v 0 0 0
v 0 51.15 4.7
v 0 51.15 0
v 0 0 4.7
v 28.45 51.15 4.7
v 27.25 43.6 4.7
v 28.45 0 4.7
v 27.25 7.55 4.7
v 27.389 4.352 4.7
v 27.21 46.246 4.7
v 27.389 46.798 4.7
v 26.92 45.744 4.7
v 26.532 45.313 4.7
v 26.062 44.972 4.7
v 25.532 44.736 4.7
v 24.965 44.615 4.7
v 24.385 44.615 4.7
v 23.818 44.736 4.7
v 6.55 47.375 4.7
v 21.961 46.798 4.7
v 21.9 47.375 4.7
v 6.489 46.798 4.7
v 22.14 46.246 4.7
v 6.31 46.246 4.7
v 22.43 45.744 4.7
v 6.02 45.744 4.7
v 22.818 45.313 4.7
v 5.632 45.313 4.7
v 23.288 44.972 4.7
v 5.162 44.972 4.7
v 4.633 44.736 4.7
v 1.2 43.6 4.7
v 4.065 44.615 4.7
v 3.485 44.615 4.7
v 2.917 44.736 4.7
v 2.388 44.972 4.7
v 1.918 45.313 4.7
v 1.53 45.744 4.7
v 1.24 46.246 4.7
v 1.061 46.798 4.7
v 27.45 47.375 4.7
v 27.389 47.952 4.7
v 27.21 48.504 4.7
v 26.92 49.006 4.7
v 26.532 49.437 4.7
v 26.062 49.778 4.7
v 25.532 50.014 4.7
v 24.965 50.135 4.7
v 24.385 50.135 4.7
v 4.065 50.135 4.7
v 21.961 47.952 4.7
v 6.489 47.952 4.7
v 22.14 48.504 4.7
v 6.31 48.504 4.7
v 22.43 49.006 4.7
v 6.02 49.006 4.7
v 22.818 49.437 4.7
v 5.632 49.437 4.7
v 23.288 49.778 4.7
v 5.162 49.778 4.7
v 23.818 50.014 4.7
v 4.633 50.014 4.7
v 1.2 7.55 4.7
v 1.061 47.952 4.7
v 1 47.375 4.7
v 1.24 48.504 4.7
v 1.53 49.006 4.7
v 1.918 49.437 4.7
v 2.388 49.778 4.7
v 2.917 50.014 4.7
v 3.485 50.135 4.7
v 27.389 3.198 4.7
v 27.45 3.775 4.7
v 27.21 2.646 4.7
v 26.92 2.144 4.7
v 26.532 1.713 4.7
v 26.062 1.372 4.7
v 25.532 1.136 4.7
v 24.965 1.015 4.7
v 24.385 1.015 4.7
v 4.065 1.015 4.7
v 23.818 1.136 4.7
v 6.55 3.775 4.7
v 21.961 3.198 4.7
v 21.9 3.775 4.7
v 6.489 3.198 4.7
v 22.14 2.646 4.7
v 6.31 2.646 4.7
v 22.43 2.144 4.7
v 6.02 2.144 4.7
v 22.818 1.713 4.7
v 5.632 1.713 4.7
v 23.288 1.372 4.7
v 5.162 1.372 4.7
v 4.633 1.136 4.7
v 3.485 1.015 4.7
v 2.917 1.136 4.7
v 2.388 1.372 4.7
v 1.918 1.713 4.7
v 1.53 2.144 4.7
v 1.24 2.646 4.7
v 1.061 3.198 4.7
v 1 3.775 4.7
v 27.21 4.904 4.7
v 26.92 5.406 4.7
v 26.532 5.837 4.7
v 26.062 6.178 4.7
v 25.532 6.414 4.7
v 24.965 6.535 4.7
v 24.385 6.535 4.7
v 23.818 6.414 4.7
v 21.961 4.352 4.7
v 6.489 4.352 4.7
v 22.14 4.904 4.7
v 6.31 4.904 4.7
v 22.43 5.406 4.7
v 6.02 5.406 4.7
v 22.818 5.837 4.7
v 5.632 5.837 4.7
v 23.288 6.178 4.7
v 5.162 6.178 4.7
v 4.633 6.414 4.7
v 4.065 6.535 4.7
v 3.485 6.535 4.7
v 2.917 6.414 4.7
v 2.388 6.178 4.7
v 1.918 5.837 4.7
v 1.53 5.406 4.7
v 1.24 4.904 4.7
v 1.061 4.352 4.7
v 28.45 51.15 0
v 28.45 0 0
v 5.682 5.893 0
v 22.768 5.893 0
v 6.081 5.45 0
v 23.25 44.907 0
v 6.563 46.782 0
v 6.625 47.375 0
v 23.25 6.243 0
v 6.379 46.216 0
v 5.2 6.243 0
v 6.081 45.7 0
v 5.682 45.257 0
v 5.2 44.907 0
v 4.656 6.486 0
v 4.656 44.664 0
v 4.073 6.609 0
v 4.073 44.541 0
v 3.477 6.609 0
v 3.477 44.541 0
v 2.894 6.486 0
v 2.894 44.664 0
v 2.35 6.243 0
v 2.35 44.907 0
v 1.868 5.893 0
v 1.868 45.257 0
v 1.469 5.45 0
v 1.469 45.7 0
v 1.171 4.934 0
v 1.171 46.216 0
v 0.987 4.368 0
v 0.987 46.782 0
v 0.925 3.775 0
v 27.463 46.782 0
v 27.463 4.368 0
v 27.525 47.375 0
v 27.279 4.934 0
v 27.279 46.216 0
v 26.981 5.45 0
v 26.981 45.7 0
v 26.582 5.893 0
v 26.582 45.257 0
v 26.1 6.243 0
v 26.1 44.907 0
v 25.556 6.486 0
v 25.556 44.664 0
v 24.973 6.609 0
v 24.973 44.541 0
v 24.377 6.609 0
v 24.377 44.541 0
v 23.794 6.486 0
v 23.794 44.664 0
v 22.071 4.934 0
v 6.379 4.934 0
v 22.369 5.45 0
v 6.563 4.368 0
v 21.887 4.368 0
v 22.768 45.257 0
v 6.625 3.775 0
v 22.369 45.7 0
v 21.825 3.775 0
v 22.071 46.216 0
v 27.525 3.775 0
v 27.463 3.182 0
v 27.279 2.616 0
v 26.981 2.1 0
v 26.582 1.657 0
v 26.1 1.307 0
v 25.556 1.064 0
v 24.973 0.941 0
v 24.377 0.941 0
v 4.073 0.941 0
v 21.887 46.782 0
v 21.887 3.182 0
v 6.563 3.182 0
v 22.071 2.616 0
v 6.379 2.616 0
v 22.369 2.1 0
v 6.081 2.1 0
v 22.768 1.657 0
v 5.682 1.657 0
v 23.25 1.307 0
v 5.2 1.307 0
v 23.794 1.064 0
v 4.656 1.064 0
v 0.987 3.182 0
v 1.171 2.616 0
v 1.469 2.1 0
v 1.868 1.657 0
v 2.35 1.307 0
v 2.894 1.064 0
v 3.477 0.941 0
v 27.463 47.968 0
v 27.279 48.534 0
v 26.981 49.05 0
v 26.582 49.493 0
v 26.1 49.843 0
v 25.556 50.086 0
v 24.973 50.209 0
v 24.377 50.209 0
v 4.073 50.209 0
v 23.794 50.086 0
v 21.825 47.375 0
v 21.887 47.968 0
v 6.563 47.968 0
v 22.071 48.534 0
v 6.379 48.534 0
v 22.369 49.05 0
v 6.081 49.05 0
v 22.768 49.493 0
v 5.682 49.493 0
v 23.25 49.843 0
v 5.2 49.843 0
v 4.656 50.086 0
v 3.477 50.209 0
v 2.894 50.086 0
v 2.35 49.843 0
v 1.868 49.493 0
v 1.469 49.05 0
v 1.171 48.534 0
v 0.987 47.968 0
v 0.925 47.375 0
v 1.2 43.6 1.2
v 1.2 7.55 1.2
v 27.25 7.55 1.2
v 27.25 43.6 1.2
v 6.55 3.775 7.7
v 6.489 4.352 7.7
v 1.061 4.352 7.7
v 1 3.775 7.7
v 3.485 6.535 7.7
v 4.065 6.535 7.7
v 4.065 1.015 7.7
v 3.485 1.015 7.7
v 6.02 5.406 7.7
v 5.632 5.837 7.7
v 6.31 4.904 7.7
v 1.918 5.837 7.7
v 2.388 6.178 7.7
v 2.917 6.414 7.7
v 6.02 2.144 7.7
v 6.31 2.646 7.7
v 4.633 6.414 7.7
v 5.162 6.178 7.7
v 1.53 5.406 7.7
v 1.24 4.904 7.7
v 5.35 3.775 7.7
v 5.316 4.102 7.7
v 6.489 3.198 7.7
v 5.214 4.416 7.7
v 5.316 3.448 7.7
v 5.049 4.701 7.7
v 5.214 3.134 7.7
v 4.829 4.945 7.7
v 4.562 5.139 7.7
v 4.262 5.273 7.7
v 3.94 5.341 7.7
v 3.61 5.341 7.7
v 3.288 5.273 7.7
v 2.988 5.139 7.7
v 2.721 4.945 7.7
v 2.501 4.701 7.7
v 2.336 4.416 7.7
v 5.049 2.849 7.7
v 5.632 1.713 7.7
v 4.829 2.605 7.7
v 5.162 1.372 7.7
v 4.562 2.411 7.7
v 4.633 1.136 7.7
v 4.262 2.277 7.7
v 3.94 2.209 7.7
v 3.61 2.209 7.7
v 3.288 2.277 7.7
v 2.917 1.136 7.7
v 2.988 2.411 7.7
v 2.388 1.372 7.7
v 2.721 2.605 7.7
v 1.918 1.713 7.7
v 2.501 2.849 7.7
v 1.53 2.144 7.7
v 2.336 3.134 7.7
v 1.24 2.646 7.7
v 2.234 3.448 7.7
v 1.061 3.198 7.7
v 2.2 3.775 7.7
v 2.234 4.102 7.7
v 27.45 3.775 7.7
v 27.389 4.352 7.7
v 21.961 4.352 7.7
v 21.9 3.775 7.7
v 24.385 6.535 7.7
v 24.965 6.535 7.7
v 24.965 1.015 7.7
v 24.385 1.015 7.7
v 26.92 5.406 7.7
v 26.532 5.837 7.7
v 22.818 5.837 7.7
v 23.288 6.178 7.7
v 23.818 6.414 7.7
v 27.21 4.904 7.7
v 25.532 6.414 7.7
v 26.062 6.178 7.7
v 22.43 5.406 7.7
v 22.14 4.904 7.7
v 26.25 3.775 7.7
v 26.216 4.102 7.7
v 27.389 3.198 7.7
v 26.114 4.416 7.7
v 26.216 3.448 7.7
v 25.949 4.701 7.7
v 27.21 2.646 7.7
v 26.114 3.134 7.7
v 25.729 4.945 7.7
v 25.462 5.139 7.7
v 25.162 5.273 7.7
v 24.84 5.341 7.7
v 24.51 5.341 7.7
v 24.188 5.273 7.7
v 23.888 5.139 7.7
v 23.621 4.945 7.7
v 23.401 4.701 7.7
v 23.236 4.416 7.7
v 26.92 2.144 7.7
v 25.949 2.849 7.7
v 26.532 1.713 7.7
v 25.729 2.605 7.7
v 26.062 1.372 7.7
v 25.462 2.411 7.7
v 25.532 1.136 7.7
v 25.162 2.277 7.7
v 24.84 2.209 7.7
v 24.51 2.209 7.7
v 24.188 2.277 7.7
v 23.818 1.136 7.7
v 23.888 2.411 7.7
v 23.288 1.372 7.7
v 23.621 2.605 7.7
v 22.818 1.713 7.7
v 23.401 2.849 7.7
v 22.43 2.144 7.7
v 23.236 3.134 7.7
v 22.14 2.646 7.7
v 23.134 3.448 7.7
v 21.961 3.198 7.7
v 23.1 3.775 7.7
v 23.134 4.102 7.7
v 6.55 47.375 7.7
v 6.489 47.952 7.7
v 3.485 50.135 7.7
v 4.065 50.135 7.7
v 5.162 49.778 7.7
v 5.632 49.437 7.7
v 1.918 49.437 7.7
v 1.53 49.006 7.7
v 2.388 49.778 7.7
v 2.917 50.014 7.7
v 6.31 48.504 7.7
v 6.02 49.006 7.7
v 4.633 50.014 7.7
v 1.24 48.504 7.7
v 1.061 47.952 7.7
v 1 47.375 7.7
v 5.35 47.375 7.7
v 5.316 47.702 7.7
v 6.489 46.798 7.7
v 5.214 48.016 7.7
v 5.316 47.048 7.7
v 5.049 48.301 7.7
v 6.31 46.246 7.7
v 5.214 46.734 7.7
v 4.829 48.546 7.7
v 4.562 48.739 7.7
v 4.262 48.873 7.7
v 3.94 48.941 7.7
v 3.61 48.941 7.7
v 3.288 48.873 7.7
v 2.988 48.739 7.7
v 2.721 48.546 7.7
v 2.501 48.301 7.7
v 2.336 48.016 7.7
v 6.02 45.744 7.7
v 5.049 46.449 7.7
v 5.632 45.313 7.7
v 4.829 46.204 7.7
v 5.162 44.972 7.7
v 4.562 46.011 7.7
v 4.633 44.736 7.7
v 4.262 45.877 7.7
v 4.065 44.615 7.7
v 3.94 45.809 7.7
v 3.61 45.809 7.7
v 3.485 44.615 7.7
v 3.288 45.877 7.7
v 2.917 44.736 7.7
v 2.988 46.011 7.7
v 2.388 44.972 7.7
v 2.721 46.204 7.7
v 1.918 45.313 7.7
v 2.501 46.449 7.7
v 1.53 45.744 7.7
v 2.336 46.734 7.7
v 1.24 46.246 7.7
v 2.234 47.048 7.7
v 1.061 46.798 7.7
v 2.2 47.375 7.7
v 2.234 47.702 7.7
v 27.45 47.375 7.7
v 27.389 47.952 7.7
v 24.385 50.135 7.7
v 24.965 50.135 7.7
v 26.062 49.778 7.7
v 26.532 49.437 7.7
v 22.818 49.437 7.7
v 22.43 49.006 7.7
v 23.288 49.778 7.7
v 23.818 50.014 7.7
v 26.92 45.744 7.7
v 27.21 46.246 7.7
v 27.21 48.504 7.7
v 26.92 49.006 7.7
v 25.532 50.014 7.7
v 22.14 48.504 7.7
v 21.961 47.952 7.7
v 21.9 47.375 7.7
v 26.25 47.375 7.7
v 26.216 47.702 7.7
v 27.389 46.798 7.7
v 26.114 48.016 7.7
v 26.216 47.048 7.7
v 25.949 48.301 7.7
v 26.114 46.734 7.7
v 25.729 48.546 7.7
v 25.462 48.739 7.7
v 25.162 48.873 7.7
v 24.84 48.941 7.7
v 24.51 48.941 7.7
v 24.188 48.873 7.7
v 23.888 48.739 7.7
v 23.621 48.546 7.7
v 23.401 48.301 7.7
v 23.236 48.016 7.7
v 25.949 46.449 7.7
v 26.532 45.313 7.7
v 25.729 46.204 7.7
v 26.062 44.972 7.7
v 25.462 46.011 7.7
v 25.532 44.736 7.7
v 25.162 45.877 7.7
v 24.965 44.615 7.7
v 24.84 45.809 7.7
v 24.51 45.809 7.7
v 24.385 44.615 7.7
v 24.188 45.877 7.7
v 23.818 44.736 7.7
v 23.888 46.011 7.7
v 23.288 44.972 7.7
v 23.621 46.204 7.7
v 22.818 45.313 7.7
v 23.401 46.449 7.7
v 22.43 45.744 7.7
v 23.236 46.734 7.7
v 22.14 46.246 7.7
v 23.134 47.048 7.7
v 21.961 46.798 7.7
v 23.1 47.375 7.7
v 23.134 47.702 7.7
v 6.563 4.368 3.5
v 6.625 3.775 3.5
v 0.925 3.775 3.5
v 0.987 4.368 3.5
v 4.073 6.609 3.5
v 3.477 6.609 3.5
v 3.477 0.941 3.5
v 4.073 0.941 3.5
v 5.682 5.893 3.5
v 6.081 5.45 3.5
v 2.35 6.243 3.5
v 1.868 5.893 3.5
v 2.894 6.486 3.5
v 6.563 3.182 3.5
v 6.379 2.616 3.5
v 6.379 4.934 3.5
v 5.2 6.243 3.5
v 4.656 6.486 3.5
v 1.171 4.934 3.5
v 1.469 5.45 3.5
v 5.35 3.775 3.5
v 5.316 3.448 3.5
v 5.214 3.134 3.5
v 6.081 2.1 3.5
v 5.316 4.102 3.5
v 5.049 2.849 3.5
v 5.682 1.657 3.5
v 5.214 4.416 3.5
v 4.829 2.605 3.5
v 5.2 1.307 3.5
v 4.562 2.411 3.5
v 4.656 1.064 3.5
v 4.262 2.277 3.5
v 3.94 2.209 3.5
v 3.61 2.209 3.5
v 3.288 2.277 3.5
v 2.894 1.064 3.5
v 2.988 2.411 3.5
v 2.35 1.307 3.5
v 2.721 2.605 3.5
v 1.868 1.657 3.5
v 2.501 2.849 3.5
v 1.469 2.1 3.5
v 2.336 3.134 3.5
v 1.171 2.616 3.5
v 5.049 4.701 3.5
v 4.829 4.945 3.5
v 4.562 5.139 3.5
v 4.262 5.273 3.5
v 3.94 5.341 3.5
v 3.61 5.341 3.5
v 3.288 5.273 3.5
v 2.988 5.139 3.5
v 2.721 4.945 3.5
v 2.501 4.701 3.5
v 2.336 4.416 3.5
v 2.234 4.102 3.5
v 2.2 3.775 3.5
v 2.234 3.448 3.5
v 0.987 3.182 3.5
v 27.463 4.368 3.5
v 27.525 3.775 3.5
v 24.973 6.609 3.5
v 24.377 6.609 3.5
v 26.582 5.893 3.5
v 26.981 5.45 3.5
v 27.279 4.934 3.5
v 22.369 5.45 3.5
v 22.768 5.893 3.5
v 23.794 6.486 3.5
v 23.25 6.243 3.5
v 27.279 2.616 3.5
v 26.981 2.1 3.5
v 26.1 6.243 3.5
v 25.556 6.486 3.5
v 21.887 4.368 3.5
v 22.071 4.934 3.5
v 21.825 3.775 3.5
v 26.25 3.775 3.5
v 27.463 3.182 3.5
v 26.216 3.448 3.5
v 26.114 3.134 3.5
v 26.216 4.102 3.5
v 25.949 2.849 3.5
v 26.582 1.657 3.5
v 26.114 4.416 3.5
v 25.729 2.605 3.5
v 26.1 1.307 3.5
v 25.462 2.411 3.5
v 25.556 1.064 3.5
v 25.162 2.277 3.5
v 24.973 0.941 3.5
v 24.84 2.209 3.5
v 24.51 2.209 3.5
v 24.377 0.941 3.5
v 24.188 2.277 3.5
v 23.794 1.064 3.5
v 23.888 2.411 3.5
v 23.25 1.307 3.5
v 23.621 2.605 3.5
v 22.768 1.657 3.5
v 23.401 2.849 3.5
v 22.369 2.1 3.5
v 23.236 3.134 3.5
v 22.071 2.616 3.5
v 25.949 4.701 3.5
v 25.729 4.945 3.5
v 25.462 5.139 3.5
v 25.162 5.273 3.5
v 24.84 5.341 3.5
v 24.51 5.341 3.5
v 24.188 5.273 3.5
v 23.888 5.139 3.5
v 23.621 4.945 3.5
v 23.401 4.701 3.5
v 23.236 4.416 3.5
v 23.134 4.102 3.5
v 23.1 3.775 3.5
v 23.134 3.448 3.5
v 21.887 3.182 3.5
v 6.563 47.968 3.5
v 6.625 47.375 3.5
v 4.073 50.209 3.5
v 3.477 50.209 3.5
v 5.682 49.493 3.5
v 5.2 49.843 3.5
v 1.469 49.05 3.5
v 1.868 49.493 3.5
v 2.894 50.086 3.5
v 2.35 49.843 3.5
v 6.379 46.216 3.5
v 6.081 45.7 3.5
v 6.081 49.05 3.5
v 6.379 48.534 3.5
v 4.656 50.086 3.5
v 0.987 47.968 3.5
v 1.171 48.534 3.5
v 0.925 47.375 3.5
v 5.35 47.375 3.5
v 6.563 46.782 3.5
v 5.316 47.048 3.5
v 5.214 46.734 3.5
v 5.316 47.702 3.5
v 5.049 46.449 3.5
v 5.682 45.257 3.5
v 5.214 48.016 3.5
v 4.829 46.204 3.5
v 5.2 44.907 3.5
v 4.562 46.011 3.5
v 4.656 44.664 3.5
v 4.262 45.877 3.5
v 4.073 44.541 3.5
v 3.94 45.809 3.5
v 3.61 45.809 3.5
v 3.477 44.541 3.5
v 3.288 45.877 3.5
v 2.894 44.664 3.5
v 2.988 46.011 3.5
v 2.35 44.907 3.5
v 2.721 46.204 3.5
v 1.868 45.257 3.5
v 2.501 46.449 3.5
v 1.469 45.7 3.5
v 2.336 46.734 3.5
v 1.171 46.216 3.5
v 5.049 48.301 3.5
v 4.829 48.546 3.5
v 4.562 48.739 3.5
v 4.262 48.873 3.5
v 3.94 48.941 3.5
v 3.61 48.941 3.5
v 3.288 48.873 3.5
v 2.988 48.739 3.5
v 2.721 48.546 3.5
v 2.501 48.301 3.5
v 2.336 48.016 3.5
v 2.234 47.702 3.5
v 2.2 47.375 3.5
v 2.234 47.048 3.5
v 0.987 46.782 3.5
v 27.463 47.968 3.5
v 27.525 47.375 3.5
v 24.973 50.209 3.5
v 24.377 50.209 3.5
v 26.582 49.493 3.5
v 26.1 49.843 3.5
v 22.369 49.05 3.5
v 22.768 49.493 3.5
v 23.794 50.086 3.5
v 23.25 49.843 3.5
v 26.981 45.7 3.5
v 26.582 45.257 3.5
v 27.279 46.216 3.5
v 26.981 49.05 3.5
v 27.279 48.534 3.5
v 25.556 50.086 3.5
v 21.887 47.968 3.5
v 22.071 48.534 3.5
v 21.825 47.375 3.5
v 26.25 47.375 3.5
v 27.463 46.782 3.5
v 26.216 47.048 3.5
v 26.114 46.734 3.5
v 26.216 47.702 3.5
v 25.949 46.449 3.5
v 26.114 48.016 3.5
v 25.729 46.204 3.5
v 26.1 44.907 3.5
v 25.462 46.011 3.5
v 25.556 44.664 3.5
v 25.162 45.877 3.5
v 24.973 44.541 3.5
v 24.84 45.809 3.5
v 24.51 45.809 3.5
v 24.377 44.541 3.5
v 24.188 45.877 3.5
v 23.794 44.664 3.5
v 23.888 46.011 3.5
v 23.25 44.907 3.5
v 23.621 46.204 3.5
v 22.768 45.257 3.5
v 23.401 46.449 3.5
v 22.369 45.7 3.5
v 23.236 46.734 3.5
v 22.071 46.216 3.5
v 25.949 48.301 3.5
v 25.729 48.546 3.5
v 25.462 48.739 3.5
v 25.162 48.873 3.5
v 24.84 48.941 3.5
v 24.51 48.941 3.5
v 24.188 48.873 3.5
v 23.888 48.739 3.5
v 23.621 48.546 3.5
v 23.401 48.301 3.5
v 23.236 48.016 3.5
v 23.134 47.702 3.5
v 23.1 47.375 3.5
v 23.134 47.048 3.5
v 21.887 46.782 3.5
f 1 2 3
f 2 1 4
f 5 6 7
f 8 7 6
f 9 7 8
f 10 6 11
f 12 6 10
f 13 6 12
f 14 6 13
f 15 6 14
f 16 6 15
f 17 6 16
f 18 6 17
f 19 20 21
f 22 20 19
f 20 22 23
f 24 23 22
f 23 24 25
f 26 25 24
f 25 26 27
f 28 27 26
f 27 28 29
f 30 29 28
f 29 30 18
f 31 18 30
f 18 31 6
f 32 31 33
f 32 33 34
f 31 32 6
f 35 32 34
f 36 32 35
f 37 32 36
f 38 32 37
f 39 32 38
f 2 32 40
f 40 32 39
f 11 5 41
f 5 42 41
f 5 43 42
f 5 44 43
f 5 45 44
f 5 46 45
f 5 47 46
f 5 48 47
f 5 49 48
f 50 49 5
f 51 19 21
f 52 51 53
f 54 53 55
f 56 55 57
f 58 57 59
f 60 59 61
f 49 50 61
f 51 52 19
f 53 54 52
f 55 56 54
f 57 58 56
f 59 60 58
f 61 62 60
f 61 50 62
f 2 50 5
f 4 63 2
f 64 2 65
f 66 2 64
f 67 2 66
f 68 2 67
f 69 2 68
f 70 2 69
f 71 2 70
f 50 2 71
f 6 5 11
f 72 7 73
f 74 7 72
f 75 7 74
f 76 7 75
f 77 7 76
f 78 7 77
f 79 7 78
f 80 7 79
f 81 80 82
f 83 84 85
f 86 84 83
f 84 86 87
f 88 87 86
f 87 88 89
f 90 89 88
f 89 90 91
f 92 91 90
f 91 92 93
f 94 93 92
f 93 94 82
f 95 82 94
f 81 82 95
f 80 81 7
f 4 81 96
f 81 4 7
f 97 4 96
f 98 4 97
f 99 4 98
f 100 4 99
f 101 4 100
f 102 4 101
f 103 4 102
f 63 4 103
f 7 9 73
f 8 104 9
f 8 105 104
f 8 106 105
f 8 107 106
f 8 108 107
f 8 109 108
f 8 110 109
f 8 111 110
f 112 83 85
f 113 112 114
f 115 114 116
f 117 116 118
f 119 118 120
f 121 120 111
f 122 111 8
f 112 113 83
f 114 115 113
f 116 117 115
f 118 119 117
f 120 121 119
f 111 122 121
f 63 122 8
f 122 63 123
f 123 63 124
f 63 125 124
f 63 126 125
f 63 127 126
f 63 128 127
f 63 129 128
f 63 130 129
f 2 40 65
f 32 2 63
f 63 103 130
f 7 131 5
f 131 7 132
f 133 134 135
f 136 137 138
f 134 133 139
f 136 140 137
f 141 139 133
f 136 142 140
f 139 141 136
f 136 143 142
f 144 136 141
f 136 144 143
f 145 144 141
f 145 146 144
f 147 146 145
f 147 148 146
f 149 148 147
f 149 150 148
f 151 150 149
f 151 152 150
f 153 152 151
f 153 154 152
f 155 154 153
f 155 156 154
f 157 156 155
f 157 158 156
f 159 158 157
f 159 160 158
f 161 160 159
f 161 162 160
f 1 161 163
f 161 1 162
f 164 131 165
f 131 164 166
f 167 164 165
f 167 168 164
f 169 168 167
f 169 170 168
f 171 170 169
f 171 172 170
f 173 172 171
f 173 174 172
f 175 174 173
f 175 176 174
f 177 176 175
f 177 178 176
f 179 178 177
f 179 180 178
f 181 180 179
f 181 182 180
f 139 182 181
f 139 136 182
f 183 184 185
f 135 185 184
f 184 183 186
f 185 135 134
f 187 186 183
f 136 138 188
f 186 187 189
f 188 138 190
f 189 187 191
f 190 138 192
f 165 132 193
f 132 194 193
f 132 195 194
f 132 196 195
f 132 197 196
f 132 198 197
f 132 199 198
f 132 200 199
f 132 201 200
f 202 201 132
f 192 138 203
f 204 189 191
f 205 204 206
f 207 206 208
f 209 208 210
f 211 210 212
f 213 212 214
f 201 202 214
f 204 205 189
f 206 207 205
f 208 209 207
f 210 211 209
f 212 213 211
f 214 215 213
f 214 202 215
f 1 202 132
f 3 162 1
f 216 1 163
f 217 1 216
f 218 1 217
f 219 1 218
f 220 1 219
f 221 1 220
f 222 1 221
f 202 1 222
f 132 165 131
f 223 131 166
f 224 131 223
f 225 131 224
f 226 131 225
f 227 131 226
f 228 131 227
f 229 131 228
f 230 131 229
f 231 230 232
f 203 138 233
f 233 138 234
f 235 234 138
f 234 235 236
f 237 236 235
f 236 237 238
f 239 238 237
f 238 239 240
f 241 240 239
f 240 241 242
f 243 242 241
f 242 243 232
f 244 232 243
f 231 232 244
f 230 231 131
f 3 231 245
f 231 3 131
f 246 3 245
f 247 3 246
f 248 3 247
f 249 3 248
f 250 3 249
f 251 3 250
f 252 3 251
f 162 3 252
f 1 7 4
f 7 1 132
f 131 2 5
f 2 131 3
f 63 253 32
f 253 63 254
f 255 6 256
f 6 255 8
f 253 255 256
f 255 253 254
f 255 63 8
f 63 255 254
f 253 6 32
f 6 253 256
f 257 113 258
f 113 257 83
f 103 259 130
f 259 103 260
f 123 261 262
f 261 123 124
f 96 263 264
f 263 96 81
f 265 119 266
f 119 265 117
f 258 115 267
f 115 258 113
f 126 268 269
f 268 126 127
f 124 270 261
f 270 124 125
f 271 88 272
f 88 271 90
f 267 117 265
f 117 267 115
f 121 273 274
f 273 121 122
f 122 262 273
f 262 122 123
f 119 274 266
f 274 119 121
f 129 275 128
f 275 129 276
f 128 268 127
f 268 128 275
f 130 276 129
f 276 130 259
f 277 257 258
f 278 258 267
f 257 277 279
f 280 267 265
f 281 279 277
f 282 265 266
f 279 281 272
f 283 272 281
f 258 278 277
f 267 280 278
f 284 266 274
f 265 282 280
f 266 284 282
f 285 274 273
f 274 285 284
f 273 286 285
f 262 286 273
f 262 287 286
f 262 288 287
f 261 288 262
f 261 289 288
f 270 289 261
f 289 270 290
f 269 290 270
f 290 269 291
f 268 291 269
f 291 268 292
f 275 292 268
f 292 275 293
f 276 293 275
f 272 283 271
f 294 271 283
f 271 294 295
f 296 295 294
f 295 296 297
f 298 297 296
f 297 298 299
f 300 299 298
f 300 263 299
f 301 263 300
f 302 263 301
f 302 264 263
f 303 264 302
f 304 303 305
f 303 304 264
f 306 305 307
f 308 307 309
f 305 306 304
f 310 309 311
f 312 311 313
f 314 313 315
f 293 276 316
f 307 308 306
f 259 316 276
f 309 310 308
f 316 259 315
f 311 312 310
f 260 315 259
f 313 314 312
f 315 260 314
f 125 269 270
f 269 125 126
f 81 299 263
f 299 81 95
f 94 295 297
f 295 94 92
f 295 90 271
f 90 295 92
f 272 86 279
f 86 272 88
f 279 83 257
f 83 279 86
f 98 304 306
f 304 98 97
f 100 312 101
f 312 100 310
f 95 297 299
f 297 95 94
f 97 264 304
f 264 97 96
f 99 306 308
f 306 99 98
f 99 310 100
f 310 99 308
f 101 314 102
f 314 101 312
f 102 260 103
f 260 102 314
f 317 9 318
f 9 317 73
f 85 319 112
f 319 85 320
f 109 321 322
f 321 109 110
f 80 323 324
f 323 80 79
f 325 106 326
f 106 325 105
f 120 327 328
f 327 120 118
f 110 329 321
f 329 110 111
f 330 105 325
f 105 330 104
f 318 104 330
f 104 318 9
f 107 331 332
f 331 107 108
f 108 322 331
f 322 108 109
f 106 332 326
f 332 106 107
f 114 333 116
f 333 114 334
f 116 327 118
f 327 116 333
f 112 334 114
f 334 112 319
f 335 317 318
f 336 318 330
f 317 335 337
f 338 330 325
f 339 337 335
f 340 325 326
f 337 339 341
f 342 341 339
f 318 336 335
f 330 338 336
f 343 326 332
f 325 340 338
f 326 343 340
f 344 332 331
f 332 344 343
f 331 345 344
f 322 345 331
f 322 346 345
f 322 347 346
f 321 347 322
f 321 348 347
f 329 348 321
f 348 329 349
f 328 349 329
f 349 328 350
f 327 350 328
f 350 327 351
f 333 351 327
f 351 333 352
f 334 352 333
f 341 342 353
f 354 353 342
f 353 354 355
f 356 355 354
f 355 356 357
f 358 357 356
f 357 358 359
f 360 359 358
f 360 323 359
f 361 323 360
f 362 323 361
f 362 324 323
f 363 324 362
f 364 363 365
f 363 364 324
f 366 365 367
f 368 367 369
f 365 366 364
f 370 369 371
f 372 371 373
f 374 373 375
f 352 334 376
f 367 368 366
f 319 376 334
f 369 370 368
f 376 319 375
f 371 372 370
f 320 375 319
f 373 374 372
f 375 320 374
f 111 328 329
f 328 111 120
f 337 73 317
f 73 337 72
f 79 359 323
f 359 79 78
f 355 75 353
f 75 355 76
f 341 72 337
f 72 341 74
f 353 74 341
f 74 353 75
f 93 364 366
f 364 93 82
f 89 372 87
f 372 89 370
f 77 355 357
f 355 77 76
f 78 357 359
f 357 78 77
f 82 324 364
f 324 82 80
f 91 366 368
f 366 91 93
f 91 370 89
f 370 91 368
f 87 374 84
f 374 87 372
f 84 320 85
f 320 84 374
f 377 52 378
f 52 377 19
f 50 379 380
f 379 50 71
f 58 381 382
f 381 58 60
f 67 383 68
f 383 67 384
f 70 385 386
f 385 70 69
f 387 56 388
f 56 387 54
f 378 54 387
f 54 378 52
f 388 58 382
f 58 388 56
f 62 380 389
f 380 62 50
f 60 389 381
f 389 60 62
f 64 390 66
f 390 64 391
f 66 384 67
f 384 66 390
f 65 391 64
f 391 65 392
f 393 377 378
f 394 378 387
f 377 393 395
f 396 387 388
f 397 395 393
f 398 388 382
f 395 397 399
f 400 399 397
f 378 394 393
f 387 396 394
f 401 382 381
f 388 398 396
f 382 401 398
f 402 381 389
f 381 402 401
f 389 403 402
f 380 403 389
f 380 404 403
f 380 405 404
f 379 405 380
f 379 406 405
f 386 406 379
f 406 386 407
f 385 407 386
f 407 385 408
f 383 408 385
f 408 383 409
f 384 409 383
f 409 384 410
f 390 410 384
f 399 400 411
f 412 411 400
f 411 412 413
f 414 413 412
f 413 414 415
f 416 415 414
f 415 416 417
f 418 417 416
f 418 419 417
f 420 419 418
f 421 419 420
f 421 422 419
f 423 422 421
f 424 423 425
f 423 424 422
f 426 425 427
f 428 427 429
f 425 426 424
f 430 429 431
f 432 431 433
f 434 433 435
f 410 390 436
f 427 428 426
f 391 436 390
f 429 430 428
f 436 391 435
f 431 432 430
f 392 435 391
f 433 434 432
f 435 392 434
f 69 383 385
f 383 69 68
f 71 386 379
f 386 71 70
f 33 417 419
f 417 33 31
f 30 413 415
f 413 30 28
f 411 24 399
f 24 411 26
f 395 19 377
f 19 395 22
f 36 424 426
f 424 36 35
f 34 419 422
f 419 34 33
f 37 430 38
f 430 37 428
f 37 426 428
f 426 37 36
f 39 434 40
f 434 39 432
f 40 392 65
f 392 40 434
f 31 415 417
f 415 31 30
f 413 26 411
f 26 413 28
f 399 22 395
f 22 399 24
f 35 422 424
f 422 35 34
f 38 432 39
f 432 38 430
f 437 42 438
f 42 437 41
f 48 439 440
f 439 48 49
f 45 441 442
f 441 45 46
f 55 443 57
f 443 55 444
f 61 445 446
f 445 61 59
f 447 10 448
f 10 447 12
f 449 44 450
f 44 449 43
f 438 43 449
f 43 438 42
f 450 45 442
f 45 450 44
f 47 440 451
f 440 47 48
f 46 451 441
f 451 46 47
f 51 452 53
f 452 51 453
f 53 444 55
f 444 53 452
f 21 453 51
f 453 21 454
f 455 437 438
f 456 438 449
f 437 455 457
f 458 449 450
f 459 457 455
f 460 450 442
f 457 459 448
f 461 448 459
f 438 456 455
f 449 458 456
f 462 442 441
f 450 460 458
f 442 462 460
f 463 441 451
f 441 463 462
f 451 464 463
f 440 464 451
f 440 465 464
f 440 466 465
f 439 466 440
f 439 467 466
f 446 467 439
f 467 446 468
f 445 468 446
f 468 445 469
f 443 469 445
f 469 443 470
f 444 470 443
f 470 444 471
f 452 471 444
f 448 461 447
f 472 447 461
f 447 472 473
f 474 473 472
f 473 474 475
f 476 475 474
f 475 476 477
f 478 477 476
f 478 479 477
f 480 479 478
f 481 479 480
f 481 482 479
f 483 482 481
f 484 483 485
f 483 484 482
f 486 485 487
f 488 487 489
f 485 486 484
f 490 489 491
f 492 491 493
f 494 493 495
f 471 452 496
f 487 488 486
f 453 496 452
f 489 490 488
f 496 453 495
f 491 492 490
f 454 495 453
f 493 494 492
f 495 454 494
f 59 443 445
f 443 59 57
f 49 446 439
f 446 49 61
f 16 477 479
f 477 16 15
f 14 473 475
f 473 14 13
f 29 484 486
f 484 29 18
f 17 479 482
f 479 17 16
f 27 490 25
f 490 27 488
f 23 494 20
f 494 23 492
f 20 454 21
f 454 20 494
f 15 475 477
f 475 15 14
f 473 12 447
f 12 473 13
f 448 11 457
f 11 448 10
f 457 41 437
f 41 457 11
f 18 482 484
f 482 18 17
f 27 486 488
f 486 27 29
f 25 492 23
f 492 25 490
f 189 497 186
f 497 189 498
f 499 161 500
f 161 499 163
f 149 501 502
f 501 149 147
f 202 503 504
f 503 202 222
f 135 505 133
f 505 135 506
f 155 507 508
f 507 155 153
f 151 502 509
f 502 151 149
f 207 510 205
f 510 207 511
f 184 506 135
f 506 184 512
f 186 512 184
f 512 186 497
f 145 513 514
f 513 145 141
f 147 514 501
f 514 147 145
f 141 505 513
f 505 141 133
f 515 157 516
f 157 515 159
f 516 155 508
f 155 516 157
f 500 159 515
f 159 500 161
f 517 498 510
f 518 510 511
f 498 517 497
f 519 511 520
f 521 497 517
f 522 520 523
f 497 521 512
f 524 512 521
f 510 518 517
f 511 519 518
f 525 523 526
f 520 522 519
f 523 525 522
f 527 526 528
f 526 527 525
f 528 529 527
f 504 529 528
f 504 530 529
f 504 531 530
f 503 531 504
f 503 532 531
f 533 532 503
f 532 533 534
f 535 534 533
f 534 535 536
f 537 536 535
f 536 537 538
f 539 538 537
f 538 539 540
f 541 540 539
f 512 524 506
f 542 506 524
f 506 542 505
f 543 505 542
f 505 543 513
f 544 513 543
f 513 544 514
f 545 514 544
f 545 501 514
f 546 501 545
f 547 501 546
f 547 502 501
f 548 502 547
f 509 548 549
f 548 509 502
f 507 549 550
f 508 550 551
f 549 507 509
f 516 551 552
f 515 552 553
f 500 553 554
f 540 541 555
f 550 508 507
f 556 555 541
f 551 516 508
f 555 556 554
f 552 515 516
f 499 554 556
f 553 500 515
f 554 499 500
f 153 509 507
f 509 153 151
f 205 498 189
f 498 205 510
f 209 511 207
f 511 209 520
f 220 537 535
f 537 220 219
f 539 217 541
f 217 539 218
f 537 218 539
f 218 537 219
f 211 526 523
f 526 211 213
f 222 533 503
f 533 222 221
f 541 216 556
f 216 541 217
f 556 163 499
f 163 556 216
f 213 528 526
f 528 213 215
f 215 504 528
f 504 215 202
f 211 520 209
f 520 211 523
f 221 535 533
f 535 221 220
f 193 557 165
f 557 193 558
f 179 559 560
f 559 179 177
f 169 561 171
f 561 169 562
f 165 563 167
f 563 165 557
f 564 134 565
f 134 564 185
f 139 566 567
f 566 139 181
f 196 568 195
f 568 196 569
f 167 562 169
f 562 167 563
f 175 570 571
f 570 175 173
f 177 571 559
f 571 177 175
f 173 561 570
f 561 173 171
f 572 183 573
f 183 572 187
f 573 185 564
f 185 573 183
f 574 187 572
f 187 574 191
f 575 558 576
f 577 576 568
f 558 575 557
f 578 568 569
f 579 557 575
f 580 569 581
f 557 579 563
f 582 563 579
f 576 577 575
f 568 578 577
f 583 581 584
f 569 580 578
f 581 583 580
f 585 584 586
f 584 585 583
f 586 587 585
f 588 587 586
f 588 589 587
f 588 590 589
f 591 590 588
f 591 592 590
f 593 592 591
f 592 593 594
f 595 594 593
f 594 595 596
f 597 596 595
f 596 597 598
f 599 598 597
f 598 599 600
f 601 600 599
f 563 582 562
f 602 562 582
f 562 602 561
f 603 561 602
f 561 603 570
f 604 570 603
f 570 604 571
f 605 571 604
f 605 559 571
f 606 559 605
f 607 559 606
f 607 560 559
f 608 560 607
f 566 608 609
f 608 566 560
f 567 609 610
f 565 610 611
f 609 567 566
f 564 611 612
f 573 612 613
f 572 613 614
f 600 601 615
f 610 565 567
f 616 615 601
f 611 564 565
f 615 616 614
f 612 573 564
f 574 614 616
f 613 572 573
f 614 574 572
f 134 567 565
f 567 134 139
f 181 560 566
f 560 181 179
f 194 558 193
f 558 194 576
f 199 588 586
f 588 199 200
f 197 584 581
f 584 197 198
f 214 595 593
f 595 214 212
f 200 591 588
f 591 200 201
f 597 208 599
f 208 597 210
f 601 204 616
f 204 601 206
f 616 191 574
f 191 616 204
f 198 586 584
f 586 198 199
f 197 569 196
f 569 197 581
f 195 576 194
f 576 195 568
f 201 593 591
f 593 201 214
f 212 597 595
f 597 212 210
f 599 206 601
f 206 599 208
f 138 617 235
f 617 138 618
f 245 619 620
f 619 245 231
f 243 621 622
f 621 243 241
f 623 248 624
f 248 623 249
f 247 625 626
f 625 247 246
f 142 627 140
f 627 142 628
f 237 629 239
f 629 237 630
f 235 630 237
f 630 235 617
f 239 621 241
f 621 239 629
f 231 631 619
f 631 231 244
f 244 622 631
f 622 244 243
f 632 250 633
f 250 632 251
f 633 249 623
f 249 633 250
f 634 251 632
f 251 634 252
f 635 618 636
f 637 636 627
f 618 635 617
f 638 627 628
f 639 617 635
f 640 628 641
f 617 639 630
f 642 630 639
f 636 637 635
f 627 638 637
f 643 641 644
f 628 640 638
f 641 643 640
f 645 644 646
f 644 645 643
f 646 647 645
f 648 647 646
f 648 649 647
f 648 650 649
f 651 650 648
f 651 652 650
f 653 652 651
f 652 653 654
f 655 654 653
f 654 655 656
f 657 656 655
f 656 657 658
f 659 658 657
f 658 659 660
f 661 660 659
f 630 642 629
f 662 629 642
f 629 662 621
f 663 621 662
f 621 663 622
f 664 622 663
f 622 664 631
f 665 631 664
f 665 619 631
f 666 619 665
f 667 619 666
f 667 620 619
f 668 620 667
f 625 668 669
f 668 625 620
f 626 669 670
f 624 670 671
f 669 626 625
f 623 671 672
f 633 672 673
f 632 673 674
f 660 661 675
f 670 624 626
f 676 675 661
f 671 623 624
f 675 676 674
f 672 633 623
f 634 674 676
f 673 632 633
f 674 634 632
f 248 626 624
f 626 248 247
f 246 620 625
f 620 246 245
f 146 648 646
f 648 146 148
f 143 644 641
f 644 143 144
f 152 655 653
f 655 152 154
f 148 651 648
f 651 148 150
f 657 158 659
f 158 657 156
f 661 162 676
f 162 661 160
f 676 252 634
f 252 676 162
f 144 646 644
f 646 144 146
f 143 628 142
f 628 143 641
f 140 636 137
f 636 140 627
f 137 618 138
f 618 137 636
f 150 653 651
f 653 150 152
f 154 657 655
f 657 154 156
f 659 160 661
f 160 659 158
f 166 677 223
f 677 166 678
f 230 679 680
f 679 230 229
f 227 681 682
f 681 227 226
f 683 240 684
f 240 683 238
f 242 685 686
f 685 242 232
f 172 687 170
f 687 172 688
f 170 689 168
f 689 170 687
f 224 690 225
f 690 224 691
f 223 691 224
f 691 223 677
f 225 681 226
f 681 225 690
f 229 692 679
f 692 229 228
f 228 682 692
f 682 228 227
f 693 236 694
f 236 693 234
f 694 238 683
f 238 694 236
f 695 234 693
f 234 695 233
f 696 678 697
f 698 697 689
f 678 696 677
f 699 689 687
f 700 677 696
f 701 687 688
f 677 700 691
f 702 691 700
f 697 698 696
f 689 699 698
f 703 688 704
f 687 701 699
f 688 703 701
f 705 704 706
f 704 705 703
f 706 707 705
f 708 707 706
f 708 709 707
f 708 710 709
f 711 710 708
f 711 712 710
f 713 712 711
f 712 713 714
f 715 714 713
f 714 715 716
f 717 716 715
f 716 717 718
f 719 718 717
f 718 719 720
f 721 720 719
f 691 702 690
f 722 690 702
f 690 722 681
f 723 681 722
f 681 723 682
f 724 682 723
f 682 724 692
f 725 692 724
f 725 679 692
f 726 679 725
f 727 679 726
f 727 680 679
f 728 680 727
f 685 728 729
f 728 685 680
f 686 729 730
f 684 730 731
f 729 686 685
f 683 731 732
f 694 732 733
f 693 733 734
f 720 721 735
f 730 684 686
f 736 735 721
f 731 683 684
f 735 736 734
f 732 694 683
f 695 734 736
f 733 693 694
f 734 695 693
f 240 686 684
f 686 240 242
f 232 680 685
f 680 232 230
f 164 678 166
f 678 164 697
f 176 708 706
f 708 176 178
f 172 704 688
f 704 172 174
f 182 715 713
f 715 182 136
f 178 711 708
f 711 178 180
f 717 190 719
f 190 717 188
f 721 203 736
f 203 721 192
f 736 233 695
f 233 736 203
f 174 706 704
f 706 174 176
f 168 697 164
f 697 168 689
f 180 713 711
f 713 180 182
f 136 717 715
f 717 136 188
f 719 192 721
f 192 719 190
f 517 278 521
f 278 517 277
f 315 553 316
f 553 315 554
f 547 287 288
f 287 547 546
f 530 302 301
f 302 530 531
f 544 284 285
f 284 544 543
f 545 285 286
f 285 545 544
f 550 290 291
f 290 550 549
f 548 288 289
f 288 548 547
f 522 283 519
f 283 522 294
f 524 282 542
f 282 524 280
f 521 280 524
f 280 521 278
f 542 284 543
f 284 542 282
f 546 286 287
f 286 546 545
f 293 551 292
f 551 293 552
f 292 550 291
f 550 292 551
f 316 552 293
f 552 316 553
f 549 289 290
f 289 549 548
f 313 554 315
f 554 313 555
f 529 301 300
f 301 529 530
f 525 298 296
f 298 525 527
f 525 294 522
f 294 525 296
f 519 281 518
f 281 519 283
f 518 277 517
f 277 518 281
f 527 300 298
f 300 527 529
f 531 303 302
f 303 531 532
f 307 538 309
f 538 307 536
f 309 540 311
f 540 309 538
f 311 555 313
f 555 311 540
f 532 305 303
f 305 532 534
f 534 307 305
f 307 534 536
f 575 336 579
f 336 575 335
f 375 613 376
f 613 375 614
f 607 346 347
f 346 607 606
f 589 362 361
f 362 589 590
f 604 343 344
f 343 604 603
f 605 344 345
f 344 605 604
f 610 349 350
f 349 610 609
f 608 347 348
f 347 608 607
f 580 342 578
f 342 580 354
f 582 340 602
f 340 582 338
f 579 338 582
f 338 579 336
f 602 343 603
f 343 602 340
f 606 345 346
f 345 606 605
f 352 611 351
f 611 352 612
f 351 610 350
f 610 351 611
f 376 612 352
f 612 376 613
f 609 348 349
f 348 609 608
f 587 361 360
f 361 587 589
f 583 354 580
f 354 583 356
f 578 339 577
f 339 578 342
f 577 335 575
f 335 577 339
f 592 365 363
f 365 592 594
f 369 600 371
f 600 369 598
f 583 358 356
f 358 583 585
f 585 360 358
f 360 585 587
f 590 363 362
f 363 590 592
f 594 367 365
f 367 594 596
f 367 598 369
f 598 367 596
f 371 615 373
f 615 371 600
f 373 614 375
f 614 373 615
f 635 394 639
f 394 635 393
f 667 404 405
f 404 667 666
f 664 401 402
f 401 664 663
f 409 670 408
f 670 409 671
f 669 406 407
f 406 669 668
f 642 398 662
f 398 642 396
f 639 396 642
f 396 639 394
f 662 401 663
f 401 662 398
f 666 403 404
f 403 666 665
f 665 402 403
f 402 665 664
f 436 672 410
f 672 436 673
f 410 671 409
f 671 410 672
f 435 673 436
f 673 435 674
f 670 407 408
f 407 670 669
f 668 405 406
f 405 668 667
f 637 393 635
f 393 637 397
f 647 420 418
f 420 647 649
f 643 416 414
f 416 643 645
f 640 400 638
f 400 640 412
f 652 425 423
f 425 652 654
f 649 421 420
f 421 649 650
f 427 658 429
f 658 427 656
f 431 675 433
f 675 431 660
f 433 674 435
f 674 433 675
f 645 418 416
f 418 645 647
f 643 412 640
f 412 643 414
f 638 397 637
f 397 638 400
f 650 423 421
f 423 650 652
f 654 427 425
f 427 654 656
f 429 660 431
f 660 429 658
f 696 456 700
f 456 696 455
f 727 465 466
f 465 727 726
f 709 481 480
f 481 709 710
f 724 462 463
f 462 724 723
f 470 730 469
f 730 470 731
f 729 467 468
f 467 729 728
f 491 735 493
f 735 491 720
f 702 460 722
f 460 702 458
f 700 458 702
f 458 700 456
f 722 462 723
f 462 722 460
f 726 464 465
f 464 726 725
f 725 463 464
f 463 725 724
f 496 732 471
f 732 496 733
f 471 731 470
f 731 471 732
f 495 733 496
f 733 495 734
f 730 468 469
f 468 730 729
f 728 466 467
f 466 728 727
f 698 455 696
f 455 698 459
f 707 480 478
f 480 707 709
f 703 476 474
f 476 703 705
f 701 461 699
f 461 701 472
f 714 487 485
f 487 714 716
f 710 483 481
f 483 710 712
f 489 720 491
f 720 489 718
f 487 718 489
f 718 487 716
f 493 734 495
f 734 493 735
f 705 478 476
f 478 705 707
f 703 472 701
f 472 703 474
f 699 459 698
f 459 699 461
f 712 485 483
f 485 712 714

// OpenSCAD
//------------------------------------------------
// 2 - base of the NodeMCU + DHT22 box
//
// author: Alessandro Paganelli 
// e-mail: alessandro.paganelli@gmail.com
// github: https://github.com/allep
// 
// Description
// This case is designed to be used with a NodeMCU 
// Amica ESP-8266 board and a DHT22 temperature
// and humidity sensor.
//
// All sizes are expressed in mm.
//------------------------------------------------

// Set face number to a sufficiently high number.
$fn = 30;

//------------------------------------------------
// Variables

//------------------------------------------------
// Hat

WALL_THICKNESS = 1.2;
BASE_THICKNESS = 1.2;
BASE_THICKNESS_SCREWS = 4.7;

CYLINDER_THICKNESS = 1.2;

// For M3 screws it must be 1.5 mm + 5% tolerance
CYLINDER_RADIUS = 1.575;
CYLINDER_HEIGHT = 3;

// tolerances
X_GAP = 1.0;
Y_GAP = 1.0;

//------------------------------------------------
// Board size
BOARD_THICKNESS = 2.0;

// Based on NodeMCU Amica ESP-8266 board.
SCREW_DISTANCE_Y = 43.6;
SCREW_DISTANCE_X = 20.9;

//------------------------------------------------
// Screw sizes (M3)

Z_SCREW_LEN = 19;
Z_SCREW_HEAD_LEN = 3.5;
SCREW_HEAD_RADIUS = 2.75;
SCREW_HEAD_RADIUS_GAP = 0.1;

//------------------------------------------------
// Actual script

// First compute sizes
// Note: these must match with those of 01_body.scad
x_len_outer = SCREW_DISTANCE_X + 2*(CYLINDER_RADIUS + CYLINDER_THICKNESS + X_GAP);
y_len_outer = SCREW_DISTANCE_Y + 2*(CYLINDER_RADIUS + CYLINDER_THICKNESS + Y_GAP);

x_screw_head_base = 2*(CYLINDER_THICKNESS + CYLINDER_RADIUS + X_GAP);

// Now compute inner sizes
y_len_inner = y_len_outer - 2*x_screw_head_base;
x_len_inner = x_len_outer - 2*WALL_THICKNESS;
z_len_inner = BASE_THICKNESS_SCREWS - BASE_THICKNESS;

echo("Computed X len = ", x_len_outer, " and Y len = ", y_len_outer);
echo("Computed screw head base = ", x_screw_head_base);

difference() {
    union()
    {
        difference() {
            cube([x_len_outer, y_len_outer, BASE_THICKNESS_SCREWS]);
            translate([WALL_THICKNESS, x_screw_head_base, BASE_THICKNESS])
            cube([x_len_inner, y_len_inner, z_len_inner]);
        }

        // screw cylinders (without screw actual hole)
        for (j = [0:1]) {
            for ( i = [0:1] ) {
                // compute the shift needed
                shift_x = i*SCREW_DISTANCE_X + CYLINDER_THICKNESS + CYLINDER_RADIUS + X_GAP;
                shift_y = j*SCREW_DISTANCE_Y + CYLINDER_THICKNESS + CYLINDER_RADIUS + Y_GAP;
                shift_z = BASE_THICKNESS_SCREWS;
                translate([shift_x, shift_y, shift_z])
                cylinder(h = CYLINDER_HEIGHT, r = CYLINDER_RADIUS + CYLINDER_THICKNESS);
            }
        }
    }
    // screw head holes
    for (j = [0:1]) {
        for ( i = [0:1] ) {
            // compute the shift needed
            shift_x = i*SCREW_DISTANCE_X + CYLINDER_THICKNESS + CYLINDER_RADIUS + X_GAP;
            shift_y = j*SCREW_DISTANCE_Y + CYLINDER_THICKNESS + CYLINDER_RADIUS + Y_GAP;
            shift_z = 0;
            translate([shift_x, shift_y, shift_z])
            cylinder(h = Z_SCREW_HEAD_LEN, r = SCREW_HEAD_RADIUS + SCREW_HEAD_RADIUS_GAP);
        }
    }
    // actual screw holes
    for (j = [0:1]) {
        for ( i = [0:1] ) {
            // compute the shift needed
            shift_x = i*SCREW_DISTANCE_X + CYLINDER_THICKNESS + CYLINDER_RADIUS + X_GAP;
            shift_y = j*SCREW_DISTANCE_Y + CYLINDER_THICKNESS + CYLINDER_RADIUS + Y_GAP;
            shift_z = 0;
            translate([shift_x, shift_y, shift_z])
            cylinder(h = BASE_THICKNESS_SCREWS + CYLINDER_HEIGHT, r = CYLINDER_RADIUS);
        }
    }
}
